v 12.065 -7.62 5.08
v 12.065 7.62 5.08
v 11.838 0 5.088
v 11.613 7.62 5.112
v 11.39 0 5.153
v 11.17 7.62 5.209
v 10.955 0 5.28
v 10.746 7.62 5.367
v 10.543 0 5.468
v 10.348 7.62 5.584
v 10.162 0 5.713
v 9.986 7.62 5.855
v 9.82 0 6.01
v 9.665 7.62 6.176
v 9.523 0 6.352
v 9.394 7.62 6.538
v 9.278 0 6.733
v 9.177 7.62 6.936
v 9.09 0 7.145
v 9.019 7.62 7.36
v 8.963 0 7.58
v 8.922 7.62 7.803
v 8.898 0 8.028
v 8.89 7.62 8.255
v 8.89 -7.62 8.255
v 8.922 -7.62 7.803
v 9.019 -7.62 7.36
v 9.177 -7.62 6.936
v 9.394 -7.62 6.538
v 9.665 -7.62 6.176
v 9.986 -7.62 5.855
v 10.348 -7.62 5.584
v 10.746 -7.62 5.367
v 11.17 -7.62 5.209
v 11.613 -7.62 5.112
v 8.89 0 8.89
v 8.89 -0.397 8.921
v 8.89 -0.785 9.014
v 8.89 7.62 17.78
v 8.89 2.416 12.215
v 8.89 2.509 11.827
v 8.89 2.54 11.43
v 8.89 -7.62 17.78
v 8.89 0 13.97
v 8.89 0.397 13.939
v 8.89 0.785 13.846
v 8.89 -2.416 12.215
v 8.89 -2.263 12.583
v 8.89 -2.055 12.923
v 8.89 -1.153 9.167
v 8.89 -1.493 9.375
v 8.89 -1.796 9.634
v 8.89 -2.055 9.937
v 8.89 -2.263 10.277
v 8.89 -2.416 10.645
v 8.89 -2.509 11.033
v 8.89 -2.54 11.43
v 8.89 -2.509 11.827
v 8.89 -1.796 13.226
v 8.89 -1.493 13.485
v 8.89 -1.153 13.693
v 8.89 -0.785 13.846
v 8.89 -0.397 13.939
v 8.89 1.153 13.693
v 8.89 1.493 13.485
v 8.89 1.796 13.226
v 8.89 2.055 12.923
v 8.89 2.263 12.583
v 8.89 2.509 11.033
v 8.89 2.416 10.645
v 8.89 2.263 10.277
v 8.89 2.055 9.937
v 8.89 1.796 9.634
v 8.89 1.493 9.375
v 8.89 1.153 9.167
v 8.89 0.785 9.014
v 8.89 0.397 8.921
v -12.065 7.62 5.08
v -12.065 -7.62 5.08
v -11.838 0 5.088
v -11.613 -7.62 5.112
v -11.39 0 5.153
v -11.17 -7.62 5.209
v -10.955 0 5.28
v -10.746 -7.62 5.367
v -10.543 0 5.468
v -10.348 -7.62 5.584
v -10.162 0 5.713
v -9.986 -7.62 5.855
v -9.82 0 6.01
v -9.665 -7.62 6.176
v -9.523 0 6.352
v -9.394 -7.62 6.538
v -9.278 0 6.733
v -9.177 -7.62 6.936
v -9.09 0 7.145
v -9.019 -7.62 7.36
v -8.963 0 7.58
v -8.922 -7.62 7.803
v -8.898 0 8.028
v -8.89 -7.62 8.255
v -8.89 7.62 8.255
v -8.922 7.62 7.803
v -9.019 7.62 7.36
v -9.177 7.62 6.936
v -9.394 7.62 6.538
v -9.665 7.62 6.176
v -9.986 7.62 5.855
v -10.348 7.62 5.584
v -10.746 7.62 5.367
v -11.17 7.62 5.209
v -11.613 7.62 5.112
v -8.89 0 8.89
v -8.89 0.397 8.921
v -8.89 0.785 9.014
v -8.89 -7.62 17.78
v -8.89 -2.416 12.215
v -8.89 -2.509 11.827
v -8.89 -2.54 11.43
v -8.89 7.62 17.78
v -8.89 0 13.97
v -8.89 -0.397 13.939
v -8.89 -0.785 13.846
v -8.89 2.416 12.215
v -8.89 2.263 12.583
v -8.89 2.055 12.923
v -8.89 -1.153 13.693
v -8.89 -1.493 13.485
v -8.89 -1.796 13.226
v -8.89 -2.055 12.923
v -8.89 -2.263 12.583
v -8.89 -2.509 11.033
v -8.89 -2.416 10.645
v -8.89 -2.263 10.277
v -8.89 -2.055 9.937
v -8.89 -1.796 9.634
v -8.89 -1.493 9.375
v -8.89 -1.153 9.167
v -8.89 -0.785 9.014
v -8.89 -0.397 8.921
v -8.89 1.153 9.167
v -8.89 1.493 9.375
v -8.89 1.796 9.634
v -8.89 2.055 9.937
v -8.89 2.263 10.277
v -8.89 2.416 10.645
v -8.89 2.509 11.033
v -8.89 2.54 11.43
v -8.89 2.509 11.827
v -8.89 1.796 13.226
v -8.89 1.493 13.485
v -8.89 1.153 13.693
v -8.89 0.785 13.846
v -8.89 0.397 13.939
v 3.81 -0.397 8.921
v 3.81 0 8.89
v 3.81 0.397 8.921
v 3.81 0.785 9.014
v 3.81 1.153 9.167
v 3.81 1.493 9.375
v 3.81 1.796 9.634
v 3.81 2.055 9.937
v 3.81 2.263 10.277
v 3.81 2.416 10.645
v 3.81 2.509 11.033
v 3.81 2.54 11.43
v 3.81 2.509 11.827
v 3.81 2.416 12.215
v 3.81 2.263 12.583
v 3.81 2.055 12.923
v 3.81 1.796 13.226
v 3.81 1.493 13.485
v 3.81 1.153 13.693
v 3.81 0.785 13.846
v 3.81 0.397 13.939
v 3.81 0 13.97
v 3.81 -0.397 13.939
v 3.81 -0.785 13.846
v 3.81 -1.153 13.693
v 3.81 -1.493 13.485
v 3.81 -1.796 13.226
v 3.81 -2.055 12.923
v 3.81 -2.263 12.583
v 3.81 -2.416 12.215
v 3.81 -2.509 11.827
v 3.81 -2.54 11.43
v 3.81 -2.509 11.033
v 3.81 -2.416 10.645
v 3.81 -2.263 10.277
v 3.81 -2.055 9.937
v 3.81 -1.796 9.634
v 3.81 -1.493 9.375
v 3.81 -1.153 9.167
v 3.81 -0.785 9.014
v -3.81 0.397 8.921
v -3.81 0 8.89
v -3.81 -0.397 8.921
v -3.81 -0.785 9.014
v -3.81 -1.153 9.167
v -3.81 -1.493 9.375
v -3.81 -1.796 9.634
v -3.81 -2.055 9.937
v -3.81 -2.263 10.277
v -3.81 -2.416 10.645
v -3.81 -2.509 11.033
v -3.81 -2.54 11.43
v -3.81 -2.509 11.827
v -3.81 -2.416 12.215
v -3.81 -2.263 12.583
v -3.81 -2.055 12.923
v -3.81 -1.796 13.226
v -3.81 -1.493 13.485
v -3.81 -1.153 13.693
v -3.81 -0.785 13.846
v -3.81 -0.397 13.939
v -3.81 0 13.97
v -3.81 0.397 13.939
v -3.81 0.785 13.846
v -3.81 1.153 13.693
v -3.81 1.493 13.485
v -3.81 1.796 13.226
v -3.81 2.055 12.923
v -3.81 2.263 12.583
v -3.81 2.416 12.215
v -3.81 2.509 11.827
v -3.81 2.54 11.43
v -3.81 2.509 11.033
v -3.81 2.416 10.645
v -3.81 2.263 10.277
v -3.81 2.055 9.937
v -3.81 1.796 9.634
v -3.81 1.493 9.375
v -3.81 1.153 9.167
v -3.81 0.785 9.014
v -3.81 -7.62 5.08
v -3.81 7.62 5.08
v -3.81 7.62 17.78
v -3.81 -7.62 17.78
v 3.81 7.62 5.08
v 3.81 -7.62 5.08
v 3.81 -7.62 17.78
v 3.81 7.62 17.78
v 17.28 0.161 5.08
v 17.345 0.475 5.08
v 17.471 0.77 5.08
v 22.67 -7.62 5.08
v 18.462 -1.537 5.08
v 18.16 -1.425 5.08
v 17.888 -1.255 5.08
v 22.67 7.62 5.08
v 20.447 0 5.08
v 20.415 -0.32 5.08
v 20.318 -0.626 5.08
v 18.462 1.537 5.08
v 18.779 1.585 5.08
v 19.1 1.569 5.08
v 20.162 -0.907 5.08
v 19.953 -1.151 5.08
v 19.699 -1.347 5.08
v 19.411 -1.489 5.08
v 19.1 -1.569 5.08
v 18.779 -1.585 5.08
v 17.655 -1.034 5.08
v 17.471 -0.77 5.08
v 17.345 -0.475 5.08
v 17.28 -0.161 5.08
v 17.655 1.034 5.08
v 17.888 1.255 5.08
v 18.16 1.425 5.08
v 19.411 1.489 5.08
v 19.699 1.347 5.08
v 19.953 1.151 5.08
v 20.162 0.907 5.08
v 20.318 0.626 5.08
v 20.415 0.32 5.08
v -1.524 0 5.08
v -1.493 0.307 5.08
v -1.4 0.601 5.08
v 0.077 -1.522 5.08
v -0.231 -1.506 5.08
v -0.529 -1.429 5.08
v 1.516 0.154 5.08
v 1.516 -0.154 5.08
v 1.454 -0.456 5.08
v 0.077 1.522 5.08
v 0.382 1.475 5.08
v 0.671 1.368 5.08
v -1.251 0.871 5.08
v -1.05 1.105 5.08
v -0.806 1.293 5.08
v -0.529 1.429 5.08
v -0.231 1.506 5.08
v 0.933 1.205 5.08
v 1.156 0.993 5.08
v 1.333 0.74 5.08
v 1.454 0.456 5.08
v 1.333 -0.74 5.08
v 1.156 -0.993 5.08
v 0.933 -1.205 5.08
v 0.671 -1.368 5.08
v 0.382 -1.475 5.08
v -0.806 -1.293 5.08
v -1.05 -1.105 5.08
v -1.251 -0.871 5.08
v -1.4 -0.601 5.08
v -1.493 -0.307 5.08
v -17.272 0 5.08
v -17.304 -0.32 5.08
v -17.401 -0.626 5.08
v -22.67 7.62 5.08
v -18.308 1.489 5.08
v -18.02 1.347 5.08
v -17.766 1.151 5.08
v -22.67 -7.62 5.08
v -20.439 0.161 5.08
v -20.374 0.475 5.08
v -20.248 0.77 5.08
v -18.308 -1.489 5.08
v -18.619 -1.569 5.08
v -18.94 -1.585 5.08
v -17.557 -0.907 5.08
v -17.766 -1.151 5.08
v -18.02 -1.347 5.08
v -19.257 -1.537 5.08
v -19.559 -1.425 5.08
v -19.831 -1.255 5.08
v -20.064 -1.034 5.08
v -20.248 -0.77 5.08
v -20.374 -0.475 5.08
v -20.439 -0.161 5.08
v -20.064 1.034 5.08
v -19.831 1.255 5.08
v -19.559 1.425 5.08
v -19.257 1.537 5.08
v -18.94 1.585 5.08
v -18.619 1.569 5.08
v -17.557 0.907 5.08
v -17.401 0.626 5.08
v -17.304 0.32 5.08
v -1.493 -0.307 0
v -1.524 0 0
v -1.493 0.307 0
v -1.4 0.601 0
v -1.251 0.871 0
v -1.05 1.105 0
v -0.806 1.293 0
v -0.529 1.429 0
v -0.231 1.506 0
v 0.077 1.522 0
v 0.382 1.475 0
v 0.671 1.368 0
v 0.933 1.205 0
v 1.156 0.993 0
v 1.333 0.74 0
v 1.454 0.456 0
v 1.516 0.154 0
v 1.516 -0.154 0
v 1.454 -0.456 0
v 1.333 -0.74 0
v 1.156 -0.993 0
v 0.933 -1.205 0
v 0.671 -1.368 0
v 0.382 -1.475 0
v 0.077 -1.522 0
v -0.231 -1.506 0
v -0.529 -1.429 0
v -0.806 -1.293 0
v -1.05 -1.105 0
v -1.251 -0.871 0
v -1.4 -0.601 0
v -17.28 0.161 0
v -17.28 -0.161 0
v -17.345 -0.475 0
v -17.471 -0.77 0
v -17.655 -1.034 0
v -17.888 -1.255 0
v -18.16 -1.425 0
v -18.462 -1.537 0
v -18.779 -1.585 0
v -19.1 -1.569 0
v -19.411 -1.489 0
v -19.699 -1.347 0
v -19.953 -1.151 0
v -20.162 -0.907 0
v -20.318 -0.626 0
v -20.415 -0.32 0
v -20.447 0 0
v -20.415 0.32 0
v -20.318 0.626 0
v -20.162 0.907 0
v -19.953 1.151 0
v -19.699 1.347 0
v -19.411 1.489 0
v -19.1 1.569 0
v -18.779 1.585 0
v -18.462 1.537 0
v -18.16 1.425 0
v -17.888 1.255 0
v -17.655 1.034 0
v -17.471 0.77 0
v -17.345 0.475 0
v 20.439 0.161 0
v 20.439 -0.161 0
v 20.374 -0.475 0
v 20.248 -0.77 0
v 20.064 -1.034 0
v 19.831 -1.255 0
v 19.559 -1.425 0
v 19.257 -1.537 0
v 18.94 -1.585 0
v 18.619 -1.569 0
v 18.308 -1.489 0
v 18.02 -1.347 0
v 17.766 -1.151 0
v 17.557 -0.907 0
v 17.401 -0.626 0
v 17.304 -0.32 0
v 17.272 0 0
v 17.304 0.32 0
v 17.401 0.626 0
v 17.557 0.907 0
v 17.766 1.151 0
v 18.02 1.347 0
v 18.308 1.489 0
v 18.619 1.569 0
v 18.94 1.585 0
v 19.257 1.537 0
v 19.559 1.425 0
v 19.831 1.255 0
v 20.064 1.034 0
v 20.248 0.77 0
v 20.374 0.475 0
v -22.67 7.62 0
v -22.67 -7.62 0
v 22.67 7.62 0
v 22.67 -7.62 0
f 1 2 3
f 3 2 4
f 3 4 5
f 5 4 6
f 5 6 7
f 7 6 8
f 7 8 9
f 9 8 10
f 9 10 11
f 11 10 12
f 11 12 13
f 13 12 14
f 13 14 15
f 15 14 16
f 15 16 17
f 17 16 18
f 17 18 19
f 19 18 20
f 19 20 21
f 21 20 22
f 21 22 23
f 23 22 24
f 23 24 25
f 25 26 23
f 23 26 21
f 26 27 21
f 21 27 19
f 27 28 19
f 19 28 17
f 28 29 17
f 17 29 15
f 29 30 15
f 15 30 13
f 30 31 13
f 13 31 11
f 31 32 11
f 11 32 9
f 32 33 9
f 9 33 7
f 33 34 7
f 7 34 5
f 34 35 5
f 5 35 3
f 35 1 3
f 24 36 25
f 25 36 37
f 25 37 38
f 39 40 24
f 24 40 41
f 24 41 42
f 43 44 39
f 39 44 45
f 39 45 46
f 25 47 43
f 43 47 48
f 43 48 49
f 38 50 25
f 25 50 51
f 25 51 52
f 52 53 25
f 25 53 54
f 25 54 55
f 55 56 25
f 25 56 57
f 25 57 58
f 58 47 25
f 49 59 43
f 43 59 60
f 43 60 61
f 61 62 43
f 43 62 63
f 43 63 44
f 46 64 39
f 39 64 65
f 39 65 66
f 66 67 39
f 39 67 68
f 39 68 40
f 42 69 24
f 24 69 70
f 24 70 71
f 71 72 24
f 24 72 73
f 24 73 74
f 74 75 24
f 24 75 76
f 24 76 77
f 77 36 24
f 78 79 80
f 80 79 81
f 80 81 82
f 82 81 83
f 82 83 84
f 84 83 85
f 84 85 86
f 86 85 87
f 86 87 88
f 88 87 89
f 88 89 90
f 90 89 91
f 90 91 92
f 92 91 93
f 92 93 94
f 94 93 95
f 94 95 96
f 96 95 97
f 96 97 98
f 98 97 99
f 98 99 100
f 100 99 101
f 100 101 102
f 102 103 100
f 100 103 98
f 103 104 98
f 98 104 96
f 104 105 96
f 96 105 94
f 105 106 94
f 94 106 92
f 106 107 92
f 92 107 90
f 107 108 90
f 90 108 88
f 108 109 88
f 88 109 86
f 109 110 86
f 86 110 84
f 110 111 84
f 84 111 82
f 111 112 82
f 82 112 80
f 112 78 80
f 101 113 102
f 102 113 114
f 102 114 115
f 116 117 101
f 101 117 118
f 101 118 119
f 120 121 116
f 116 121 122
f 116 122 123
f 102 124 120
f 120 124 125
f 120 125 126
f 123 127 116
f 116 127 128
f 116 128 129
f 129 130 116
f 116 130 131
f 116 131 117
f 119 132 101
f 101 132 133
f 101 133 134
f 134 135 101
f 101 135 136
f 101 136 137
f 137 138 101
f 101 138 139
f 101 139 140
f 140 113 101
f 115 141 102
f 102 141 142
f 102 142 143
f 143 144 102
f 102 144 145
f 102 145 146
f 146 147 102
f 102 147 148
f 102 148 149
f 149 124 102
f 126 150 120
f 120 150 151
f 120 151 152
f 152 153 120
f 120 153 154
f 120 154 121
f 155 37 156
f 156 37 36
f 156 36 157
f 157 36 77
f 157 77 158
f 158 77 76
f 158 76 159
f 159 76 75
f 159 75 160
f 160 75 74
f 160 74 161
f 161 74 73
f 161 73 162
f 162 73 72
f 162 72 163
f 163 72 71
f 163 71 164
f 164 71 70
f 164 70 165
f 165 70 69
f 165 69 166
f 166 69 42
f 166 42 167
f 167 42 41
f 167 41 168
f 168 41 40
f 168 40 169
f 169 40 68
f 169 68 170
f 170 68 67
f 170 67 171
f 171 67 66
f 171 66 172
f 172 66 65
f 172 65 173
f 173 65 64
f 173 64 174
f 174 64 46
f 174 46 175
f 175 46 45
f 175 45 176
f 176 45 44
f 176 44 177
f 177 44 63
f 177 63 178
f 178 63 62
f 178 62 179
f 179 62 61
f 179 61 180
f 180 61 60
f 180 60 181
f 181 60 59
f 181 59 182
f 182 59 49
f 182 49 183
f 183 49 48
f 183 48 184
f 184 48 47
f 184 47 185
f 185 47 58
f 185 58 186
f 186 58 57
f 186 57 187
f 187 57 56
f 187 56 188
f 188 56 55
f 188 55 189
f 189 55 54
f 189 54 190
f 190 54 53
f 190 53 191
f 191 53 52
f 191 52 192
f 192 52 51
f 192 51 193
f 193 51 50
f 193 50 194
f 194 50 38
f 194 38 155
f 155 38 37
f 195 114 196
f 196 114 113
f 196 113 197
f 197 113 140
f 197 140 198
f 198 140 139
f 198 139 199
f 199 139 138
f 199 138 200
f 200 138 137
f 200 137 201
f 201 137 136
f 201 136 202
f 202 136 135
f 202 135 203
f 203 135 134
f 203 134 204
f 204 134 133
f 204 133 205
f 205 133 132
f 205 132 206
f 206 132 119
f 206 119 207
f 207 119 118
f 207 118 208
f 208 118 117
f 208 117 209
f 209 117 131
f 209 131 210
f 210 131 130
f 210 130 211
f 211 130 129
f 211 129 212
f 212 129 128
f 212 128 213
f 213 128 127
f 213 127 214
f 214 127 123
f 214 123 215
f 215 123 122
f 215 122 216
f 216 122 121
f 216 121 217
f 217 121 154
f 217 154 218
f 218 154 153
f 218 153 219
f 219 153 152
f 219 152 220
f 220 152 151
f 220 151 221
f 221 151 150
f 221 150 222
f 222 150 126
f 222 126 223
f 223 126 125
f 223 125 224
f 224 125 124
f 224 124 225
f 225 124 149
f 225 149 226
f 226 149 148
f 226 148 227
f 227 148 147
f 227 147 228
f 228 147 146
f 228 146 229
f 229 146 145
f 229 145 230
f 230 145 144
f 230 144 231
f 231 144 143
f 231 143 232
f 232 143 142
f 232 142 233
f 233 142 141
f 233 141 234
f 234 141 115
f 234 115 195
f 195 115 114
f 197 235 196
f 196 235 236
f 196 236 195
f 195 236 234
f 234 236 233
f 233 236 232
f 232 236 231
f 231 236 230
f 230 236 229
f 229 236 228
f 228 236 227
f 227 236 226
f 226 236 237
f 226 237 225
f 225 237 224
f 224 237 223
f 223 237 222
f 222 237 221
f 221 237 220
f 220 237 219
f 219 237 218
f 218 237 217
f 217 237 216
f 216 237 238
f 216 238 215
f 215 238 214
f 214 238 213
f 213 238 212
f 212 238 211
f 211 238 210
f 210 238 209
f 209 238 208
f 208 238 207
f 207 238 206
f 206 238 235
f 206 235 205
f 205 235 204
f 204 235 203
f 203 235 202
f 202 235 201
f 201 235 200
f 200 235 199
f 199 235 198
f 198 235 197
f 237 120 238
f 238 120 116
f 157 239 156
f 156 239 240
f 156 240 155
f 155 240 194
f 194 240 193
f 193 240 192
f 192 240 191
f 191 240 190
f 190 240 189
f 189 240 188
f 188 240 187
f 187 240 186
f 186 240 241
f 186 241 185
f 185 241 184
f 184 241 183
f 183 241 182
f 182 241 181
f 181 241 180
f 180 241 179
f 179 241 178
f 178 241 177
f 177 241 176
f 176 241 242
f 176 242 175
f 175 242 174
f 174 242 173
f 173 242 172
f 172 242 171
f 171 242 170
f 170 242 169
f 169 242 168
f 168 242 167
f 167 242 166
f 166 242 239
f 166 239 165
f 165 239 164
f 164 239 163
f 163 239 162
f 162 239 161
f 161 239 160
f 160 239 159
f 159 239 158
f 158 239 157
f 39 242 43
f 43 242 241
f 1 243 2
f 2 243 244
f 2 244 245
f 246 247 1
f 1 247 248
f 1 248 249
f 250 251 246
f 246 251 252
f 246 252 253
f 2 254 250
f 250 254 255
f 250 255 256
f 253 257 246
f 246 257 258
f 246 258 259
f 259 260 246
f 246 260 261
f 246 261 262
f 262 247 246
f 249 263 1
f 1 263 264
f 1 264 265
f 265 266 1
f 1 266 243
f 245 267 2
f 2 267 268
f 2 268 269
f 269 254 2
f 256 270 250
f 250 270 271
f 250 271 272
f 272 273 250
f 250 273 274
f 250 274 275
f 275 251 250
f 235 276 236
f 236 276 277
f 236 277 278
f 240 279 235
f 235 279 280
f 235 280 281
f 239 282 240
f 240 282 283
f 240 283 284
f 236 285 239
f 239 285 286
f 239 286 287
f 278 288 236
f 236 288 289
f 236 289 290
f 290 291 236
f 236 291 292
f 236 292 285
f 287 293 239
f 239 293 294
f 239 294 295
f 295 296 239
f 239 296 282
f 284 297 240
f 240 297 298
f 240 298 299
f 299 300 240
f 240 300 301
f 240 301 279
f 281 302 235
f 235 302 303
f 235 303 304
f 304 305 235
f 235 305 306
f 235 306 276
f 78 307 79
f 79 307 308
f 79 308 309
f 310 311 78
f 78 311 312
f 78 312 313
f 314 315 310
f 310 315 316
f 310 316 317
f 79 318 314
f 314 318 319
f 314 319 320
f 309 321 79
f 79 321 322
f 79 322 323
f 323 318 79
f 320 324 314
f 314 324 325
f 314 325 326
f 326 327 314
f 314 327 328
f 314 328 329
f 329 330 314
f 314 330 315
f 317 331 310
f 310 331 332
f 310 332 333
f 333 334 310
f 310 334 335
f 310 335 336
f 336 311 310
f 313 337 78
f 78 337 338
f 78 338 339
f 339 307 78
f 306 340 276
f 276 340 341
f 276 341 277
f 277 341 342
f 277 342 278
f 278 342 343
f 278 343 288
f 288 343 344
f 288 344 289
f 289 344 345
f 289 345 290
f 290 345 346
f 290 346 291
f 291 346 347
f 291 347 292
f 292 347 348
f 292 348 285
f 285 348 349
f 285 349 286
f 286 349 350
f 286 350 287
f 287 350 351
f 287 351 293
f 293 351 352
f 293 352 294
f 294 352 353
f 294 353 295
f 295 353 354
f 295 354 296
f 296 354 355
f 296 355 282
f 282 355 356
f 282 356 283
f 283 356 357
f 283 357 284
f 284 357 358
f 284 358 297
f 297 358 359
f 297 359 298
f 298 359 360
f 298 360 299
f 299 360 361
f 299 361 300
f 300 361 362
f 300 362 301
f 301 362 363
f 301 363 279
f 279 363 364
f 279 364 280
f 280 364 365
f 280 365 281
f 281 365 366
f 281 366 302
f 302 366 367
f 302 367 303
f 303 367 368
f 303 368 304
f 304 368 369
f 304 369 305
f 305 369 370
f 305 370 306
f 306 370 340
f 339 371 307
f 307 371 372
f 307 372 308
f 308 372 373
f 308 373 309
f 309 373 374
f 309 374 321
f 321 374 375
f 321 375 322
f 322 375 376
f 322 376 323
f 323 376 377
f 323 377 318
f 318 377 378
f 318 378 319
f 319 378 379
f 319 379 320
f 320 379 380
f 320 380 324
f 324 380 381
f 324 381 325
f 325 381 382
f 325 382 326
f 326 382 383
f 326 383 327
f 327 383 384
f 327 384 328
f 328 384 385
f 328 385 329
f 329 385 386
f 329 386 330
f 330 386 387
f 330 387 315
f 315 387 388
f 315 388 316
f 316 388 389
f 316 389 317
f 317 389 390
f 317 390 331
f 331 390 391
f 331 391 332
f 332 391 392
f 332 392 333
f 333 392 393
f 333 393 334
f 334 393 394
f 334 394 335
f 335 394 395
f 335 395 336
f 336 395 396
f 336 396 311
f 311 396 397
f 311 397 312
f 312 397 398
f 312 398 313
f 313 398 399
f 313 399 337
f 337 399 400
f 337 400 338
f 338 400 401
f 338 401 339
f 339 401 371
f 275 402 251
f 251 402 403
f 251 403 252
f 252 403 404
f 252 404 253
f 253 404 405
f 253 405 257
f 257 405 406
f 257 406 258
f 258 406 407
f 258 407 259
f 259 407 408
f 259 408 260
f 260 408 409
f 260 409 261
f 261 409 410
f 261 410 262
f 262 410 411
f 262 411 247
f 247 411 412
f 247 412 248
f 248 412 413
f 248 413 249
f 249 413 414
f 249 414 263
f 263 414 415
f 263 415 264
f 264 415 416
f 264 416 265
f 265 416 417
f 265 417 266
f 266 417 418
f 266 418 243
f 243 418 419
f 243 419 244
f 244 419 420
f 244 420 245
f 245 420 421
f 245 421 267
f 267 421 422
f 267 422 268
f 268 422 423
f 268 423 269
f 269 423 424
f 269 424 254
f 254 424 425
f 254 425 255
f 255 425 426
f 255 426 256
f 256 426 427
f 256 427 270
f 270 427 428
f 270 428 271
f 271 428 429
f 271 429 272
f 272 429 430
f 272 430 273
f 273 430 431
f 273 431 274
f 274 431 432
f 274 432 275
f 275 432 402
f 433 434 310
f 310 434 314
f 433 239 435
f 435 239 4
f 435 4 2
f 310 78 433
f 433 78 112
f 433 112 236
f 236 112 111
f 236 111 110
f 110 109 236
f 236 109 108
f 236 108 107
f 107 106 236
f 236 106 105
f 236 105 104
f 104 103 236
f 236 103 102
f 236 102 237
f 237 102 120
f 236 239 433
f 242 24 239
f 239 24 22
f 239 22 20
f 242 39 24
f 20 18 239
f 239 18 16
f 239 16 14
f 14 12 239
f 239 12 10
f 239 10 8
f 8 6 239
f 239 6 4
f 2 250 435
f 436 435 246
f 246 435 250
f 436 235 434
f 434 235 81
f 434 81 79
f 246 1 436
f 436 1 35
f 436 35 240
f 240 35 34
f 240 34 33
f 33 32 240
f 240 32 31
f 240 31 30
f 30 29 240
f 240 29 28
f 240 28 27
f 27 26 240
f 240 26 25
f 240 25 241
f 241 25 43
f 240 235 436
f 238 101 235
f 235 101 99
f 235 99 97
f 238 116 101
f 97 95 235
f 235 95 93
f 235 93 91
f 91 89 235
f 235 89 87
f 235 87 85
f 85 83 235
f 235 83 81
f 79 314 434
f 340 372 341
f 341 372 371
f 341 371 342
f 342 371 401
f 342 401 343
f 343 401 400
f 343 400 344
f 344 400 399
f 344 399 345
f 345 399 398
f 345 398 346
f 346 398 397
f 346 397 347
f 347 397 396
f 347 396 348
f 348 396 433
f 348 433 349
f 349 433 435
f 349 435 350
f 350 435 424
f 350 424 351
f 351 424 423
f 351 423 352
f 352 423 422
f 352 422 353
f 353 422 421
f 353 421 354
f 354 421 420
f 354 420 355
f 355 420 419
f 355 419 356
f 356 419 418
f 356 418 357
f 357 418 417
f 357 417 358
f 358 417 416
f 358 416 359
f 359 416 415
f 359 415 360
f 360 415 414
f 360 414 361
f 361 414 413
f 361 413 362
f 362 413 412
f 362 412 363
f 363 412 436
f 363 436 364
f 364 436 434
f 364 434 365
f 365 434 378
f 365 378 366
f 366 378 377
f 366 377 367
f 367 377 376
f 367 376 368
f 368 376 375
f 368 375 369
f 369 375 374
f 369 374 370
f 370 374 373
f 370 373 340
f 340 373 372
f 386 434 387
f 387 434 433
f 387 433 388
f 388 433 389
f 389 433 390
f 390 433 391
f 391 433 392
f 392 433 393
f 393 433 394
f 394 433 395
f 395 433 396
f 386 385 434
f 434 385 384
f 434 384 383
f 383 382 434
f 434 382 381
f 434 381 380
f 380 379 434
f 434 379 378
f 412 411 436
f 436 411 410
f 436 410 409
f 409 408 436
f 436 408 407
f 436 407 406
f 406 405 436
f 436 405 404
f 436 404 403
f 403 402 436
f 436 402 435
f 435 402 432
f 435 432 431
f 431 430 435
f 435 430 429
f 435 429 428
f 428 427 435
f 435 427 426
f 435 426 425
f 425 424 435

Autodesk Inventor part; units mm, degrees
ref_plane "YZ Plane" through (0, 0, 0) normal (1, 0, 0) x (0, 1, 0)
ref_plane "XZ Plane" through (0, 0, 0) normal (0, 1, 0) x (-1, 0, 0)
ref_plane "XY Plane" through (0, 0, 0) normal (0, 0, 1) x (1, 0, 0)
sketch "Sketch1" plane through (0, 0, 0) normal (0, 0, 1) x (1, 0, 0)
  line L0 (-22.6695, -7.62) -> (22.6695, -7.62)
  line L1 (22.6695, -7.62) -> (22.6695, 7.62)
  line L2 (22.6695, 7.62) -> (-22.6695, 7.62)
  line L3 (-22.6695, 7.62) -> (-22.6695, -7.62)
  line L4 (-22.6695, -7.62) -> (22.6695, 7.62) construction
  line L5 (22.6695, -7.62) -> (-22.6695, 7.62) construction
  point P0 (0, 0)
  dimension "d0" = 15.24
  dimension "d1" = 45.339
extrude "Extrusion1" add sketch "Sketch1" along normal blind 5.08
sketch "Sketch2" plane through (0, 0, 0) normal (0, 0, -1) x (-1, 0, 0)
  line L0 (22.6695, 7.62) -> (22.6695, -7.62) projected
  line L1 (-22.6695, -7.62) -> (-22.6695, 7.62) projected
  line L2 (-22.6695, 7.62) -> (22.6695, 7.62) projected
  point P0 (0, 0)
  point P1 (18.8595, 0)
  point P2 (-18.8595, 0)
  dimension "d4" = 3.81
  dimension "d5" = 3.81
  dimension "d6" = 7.62
  dimension "d7" = 7.62
  dimension "d35" = 15.24
hole "Hole1" at (-18.8595, 0, 0) at (18.8595, 0, 0) direction (0, 0, 1) diameter 3.175 end through all
sketch "Sketch3" plane through (0, 0, 0) normal (0, 0, -1) x (-1, 0, 0)
  circle A0 centre (0, 0) radius 1.524
  dimension "d15" = 3.048
extrude "Extrusion2" cut sketch "Sketch3" against normal through all
sketch "Sketch4" plane through (0, 0, 5.08) normal (0, 0, 1) x (1, 0, 0)
  line L0 (22.6695, 7.62) -> (-22.6695, 7.62) projected
  line L1 (-22.6695, -7.62) -> (22.6695, -7.62) projected
  line L2 (-3.81, 7.62) -> (-8.89, 7.62)
  line L3 (-8.89, 7.62) -> (-8.89, -7.62)
  line L4 (-8.89, -7.62) -> (-3.81, -7.62)
  line L5 (-3.81, -7.62) -> (-3.81, 7.62)
  line L6 (3.81, 7.62) -> (8.89, 7.62)
  line L7 (8.89, 7.62) -> (8.89, -7.62)
  line L8 (8.89, -7.62) -> (3.81, -7.62)
  line L9 (3.81, -7.62) -> (3.81, 7.62)
  point P0 (0, 0)
  dimension "d18" = 5.08
  dimension "d19" = 3.81
  dimension "d20" = 3.81
  dimension "d21" = 5.08
extrude "Extrusion3" add sketch "Sketch4" along normal blind 12.7 contours L7 L1 L9 L0 | L5 L1 L3 L0
sketch "Sketch5" plane through (-8.89, -7.62, 5.08) normal (-1, 0, 0) x (0, 0, 1)
  line L0 (12.7, 15.24) -> (12.7, 0) projected
  line L1 (0, 15.24) -> (12.7, 15.24) projected
  point P0 (-5.08, 7.62)
  point P1 (6.35, 7.62)
  dimension "d24" = 6.35
  dimension "d25" = 7.62
  dimension "d36" = 15.24
hole "Hole2" at (-8.89, 0, 11.43) direction (1, 0, 0) diameter 5.08 end through all
fillet "Fillet1" radius 3.175 2 edges at (-8.89, 0, 5.08) (8.89, 0, 5.08)
equation "\"d6\" = 0.5 * d35"
equation "\"d7\" = d6"
equation "\"d25\" = 0.5 * d36"
properties part number "LowerSpringMountFrontV2"
